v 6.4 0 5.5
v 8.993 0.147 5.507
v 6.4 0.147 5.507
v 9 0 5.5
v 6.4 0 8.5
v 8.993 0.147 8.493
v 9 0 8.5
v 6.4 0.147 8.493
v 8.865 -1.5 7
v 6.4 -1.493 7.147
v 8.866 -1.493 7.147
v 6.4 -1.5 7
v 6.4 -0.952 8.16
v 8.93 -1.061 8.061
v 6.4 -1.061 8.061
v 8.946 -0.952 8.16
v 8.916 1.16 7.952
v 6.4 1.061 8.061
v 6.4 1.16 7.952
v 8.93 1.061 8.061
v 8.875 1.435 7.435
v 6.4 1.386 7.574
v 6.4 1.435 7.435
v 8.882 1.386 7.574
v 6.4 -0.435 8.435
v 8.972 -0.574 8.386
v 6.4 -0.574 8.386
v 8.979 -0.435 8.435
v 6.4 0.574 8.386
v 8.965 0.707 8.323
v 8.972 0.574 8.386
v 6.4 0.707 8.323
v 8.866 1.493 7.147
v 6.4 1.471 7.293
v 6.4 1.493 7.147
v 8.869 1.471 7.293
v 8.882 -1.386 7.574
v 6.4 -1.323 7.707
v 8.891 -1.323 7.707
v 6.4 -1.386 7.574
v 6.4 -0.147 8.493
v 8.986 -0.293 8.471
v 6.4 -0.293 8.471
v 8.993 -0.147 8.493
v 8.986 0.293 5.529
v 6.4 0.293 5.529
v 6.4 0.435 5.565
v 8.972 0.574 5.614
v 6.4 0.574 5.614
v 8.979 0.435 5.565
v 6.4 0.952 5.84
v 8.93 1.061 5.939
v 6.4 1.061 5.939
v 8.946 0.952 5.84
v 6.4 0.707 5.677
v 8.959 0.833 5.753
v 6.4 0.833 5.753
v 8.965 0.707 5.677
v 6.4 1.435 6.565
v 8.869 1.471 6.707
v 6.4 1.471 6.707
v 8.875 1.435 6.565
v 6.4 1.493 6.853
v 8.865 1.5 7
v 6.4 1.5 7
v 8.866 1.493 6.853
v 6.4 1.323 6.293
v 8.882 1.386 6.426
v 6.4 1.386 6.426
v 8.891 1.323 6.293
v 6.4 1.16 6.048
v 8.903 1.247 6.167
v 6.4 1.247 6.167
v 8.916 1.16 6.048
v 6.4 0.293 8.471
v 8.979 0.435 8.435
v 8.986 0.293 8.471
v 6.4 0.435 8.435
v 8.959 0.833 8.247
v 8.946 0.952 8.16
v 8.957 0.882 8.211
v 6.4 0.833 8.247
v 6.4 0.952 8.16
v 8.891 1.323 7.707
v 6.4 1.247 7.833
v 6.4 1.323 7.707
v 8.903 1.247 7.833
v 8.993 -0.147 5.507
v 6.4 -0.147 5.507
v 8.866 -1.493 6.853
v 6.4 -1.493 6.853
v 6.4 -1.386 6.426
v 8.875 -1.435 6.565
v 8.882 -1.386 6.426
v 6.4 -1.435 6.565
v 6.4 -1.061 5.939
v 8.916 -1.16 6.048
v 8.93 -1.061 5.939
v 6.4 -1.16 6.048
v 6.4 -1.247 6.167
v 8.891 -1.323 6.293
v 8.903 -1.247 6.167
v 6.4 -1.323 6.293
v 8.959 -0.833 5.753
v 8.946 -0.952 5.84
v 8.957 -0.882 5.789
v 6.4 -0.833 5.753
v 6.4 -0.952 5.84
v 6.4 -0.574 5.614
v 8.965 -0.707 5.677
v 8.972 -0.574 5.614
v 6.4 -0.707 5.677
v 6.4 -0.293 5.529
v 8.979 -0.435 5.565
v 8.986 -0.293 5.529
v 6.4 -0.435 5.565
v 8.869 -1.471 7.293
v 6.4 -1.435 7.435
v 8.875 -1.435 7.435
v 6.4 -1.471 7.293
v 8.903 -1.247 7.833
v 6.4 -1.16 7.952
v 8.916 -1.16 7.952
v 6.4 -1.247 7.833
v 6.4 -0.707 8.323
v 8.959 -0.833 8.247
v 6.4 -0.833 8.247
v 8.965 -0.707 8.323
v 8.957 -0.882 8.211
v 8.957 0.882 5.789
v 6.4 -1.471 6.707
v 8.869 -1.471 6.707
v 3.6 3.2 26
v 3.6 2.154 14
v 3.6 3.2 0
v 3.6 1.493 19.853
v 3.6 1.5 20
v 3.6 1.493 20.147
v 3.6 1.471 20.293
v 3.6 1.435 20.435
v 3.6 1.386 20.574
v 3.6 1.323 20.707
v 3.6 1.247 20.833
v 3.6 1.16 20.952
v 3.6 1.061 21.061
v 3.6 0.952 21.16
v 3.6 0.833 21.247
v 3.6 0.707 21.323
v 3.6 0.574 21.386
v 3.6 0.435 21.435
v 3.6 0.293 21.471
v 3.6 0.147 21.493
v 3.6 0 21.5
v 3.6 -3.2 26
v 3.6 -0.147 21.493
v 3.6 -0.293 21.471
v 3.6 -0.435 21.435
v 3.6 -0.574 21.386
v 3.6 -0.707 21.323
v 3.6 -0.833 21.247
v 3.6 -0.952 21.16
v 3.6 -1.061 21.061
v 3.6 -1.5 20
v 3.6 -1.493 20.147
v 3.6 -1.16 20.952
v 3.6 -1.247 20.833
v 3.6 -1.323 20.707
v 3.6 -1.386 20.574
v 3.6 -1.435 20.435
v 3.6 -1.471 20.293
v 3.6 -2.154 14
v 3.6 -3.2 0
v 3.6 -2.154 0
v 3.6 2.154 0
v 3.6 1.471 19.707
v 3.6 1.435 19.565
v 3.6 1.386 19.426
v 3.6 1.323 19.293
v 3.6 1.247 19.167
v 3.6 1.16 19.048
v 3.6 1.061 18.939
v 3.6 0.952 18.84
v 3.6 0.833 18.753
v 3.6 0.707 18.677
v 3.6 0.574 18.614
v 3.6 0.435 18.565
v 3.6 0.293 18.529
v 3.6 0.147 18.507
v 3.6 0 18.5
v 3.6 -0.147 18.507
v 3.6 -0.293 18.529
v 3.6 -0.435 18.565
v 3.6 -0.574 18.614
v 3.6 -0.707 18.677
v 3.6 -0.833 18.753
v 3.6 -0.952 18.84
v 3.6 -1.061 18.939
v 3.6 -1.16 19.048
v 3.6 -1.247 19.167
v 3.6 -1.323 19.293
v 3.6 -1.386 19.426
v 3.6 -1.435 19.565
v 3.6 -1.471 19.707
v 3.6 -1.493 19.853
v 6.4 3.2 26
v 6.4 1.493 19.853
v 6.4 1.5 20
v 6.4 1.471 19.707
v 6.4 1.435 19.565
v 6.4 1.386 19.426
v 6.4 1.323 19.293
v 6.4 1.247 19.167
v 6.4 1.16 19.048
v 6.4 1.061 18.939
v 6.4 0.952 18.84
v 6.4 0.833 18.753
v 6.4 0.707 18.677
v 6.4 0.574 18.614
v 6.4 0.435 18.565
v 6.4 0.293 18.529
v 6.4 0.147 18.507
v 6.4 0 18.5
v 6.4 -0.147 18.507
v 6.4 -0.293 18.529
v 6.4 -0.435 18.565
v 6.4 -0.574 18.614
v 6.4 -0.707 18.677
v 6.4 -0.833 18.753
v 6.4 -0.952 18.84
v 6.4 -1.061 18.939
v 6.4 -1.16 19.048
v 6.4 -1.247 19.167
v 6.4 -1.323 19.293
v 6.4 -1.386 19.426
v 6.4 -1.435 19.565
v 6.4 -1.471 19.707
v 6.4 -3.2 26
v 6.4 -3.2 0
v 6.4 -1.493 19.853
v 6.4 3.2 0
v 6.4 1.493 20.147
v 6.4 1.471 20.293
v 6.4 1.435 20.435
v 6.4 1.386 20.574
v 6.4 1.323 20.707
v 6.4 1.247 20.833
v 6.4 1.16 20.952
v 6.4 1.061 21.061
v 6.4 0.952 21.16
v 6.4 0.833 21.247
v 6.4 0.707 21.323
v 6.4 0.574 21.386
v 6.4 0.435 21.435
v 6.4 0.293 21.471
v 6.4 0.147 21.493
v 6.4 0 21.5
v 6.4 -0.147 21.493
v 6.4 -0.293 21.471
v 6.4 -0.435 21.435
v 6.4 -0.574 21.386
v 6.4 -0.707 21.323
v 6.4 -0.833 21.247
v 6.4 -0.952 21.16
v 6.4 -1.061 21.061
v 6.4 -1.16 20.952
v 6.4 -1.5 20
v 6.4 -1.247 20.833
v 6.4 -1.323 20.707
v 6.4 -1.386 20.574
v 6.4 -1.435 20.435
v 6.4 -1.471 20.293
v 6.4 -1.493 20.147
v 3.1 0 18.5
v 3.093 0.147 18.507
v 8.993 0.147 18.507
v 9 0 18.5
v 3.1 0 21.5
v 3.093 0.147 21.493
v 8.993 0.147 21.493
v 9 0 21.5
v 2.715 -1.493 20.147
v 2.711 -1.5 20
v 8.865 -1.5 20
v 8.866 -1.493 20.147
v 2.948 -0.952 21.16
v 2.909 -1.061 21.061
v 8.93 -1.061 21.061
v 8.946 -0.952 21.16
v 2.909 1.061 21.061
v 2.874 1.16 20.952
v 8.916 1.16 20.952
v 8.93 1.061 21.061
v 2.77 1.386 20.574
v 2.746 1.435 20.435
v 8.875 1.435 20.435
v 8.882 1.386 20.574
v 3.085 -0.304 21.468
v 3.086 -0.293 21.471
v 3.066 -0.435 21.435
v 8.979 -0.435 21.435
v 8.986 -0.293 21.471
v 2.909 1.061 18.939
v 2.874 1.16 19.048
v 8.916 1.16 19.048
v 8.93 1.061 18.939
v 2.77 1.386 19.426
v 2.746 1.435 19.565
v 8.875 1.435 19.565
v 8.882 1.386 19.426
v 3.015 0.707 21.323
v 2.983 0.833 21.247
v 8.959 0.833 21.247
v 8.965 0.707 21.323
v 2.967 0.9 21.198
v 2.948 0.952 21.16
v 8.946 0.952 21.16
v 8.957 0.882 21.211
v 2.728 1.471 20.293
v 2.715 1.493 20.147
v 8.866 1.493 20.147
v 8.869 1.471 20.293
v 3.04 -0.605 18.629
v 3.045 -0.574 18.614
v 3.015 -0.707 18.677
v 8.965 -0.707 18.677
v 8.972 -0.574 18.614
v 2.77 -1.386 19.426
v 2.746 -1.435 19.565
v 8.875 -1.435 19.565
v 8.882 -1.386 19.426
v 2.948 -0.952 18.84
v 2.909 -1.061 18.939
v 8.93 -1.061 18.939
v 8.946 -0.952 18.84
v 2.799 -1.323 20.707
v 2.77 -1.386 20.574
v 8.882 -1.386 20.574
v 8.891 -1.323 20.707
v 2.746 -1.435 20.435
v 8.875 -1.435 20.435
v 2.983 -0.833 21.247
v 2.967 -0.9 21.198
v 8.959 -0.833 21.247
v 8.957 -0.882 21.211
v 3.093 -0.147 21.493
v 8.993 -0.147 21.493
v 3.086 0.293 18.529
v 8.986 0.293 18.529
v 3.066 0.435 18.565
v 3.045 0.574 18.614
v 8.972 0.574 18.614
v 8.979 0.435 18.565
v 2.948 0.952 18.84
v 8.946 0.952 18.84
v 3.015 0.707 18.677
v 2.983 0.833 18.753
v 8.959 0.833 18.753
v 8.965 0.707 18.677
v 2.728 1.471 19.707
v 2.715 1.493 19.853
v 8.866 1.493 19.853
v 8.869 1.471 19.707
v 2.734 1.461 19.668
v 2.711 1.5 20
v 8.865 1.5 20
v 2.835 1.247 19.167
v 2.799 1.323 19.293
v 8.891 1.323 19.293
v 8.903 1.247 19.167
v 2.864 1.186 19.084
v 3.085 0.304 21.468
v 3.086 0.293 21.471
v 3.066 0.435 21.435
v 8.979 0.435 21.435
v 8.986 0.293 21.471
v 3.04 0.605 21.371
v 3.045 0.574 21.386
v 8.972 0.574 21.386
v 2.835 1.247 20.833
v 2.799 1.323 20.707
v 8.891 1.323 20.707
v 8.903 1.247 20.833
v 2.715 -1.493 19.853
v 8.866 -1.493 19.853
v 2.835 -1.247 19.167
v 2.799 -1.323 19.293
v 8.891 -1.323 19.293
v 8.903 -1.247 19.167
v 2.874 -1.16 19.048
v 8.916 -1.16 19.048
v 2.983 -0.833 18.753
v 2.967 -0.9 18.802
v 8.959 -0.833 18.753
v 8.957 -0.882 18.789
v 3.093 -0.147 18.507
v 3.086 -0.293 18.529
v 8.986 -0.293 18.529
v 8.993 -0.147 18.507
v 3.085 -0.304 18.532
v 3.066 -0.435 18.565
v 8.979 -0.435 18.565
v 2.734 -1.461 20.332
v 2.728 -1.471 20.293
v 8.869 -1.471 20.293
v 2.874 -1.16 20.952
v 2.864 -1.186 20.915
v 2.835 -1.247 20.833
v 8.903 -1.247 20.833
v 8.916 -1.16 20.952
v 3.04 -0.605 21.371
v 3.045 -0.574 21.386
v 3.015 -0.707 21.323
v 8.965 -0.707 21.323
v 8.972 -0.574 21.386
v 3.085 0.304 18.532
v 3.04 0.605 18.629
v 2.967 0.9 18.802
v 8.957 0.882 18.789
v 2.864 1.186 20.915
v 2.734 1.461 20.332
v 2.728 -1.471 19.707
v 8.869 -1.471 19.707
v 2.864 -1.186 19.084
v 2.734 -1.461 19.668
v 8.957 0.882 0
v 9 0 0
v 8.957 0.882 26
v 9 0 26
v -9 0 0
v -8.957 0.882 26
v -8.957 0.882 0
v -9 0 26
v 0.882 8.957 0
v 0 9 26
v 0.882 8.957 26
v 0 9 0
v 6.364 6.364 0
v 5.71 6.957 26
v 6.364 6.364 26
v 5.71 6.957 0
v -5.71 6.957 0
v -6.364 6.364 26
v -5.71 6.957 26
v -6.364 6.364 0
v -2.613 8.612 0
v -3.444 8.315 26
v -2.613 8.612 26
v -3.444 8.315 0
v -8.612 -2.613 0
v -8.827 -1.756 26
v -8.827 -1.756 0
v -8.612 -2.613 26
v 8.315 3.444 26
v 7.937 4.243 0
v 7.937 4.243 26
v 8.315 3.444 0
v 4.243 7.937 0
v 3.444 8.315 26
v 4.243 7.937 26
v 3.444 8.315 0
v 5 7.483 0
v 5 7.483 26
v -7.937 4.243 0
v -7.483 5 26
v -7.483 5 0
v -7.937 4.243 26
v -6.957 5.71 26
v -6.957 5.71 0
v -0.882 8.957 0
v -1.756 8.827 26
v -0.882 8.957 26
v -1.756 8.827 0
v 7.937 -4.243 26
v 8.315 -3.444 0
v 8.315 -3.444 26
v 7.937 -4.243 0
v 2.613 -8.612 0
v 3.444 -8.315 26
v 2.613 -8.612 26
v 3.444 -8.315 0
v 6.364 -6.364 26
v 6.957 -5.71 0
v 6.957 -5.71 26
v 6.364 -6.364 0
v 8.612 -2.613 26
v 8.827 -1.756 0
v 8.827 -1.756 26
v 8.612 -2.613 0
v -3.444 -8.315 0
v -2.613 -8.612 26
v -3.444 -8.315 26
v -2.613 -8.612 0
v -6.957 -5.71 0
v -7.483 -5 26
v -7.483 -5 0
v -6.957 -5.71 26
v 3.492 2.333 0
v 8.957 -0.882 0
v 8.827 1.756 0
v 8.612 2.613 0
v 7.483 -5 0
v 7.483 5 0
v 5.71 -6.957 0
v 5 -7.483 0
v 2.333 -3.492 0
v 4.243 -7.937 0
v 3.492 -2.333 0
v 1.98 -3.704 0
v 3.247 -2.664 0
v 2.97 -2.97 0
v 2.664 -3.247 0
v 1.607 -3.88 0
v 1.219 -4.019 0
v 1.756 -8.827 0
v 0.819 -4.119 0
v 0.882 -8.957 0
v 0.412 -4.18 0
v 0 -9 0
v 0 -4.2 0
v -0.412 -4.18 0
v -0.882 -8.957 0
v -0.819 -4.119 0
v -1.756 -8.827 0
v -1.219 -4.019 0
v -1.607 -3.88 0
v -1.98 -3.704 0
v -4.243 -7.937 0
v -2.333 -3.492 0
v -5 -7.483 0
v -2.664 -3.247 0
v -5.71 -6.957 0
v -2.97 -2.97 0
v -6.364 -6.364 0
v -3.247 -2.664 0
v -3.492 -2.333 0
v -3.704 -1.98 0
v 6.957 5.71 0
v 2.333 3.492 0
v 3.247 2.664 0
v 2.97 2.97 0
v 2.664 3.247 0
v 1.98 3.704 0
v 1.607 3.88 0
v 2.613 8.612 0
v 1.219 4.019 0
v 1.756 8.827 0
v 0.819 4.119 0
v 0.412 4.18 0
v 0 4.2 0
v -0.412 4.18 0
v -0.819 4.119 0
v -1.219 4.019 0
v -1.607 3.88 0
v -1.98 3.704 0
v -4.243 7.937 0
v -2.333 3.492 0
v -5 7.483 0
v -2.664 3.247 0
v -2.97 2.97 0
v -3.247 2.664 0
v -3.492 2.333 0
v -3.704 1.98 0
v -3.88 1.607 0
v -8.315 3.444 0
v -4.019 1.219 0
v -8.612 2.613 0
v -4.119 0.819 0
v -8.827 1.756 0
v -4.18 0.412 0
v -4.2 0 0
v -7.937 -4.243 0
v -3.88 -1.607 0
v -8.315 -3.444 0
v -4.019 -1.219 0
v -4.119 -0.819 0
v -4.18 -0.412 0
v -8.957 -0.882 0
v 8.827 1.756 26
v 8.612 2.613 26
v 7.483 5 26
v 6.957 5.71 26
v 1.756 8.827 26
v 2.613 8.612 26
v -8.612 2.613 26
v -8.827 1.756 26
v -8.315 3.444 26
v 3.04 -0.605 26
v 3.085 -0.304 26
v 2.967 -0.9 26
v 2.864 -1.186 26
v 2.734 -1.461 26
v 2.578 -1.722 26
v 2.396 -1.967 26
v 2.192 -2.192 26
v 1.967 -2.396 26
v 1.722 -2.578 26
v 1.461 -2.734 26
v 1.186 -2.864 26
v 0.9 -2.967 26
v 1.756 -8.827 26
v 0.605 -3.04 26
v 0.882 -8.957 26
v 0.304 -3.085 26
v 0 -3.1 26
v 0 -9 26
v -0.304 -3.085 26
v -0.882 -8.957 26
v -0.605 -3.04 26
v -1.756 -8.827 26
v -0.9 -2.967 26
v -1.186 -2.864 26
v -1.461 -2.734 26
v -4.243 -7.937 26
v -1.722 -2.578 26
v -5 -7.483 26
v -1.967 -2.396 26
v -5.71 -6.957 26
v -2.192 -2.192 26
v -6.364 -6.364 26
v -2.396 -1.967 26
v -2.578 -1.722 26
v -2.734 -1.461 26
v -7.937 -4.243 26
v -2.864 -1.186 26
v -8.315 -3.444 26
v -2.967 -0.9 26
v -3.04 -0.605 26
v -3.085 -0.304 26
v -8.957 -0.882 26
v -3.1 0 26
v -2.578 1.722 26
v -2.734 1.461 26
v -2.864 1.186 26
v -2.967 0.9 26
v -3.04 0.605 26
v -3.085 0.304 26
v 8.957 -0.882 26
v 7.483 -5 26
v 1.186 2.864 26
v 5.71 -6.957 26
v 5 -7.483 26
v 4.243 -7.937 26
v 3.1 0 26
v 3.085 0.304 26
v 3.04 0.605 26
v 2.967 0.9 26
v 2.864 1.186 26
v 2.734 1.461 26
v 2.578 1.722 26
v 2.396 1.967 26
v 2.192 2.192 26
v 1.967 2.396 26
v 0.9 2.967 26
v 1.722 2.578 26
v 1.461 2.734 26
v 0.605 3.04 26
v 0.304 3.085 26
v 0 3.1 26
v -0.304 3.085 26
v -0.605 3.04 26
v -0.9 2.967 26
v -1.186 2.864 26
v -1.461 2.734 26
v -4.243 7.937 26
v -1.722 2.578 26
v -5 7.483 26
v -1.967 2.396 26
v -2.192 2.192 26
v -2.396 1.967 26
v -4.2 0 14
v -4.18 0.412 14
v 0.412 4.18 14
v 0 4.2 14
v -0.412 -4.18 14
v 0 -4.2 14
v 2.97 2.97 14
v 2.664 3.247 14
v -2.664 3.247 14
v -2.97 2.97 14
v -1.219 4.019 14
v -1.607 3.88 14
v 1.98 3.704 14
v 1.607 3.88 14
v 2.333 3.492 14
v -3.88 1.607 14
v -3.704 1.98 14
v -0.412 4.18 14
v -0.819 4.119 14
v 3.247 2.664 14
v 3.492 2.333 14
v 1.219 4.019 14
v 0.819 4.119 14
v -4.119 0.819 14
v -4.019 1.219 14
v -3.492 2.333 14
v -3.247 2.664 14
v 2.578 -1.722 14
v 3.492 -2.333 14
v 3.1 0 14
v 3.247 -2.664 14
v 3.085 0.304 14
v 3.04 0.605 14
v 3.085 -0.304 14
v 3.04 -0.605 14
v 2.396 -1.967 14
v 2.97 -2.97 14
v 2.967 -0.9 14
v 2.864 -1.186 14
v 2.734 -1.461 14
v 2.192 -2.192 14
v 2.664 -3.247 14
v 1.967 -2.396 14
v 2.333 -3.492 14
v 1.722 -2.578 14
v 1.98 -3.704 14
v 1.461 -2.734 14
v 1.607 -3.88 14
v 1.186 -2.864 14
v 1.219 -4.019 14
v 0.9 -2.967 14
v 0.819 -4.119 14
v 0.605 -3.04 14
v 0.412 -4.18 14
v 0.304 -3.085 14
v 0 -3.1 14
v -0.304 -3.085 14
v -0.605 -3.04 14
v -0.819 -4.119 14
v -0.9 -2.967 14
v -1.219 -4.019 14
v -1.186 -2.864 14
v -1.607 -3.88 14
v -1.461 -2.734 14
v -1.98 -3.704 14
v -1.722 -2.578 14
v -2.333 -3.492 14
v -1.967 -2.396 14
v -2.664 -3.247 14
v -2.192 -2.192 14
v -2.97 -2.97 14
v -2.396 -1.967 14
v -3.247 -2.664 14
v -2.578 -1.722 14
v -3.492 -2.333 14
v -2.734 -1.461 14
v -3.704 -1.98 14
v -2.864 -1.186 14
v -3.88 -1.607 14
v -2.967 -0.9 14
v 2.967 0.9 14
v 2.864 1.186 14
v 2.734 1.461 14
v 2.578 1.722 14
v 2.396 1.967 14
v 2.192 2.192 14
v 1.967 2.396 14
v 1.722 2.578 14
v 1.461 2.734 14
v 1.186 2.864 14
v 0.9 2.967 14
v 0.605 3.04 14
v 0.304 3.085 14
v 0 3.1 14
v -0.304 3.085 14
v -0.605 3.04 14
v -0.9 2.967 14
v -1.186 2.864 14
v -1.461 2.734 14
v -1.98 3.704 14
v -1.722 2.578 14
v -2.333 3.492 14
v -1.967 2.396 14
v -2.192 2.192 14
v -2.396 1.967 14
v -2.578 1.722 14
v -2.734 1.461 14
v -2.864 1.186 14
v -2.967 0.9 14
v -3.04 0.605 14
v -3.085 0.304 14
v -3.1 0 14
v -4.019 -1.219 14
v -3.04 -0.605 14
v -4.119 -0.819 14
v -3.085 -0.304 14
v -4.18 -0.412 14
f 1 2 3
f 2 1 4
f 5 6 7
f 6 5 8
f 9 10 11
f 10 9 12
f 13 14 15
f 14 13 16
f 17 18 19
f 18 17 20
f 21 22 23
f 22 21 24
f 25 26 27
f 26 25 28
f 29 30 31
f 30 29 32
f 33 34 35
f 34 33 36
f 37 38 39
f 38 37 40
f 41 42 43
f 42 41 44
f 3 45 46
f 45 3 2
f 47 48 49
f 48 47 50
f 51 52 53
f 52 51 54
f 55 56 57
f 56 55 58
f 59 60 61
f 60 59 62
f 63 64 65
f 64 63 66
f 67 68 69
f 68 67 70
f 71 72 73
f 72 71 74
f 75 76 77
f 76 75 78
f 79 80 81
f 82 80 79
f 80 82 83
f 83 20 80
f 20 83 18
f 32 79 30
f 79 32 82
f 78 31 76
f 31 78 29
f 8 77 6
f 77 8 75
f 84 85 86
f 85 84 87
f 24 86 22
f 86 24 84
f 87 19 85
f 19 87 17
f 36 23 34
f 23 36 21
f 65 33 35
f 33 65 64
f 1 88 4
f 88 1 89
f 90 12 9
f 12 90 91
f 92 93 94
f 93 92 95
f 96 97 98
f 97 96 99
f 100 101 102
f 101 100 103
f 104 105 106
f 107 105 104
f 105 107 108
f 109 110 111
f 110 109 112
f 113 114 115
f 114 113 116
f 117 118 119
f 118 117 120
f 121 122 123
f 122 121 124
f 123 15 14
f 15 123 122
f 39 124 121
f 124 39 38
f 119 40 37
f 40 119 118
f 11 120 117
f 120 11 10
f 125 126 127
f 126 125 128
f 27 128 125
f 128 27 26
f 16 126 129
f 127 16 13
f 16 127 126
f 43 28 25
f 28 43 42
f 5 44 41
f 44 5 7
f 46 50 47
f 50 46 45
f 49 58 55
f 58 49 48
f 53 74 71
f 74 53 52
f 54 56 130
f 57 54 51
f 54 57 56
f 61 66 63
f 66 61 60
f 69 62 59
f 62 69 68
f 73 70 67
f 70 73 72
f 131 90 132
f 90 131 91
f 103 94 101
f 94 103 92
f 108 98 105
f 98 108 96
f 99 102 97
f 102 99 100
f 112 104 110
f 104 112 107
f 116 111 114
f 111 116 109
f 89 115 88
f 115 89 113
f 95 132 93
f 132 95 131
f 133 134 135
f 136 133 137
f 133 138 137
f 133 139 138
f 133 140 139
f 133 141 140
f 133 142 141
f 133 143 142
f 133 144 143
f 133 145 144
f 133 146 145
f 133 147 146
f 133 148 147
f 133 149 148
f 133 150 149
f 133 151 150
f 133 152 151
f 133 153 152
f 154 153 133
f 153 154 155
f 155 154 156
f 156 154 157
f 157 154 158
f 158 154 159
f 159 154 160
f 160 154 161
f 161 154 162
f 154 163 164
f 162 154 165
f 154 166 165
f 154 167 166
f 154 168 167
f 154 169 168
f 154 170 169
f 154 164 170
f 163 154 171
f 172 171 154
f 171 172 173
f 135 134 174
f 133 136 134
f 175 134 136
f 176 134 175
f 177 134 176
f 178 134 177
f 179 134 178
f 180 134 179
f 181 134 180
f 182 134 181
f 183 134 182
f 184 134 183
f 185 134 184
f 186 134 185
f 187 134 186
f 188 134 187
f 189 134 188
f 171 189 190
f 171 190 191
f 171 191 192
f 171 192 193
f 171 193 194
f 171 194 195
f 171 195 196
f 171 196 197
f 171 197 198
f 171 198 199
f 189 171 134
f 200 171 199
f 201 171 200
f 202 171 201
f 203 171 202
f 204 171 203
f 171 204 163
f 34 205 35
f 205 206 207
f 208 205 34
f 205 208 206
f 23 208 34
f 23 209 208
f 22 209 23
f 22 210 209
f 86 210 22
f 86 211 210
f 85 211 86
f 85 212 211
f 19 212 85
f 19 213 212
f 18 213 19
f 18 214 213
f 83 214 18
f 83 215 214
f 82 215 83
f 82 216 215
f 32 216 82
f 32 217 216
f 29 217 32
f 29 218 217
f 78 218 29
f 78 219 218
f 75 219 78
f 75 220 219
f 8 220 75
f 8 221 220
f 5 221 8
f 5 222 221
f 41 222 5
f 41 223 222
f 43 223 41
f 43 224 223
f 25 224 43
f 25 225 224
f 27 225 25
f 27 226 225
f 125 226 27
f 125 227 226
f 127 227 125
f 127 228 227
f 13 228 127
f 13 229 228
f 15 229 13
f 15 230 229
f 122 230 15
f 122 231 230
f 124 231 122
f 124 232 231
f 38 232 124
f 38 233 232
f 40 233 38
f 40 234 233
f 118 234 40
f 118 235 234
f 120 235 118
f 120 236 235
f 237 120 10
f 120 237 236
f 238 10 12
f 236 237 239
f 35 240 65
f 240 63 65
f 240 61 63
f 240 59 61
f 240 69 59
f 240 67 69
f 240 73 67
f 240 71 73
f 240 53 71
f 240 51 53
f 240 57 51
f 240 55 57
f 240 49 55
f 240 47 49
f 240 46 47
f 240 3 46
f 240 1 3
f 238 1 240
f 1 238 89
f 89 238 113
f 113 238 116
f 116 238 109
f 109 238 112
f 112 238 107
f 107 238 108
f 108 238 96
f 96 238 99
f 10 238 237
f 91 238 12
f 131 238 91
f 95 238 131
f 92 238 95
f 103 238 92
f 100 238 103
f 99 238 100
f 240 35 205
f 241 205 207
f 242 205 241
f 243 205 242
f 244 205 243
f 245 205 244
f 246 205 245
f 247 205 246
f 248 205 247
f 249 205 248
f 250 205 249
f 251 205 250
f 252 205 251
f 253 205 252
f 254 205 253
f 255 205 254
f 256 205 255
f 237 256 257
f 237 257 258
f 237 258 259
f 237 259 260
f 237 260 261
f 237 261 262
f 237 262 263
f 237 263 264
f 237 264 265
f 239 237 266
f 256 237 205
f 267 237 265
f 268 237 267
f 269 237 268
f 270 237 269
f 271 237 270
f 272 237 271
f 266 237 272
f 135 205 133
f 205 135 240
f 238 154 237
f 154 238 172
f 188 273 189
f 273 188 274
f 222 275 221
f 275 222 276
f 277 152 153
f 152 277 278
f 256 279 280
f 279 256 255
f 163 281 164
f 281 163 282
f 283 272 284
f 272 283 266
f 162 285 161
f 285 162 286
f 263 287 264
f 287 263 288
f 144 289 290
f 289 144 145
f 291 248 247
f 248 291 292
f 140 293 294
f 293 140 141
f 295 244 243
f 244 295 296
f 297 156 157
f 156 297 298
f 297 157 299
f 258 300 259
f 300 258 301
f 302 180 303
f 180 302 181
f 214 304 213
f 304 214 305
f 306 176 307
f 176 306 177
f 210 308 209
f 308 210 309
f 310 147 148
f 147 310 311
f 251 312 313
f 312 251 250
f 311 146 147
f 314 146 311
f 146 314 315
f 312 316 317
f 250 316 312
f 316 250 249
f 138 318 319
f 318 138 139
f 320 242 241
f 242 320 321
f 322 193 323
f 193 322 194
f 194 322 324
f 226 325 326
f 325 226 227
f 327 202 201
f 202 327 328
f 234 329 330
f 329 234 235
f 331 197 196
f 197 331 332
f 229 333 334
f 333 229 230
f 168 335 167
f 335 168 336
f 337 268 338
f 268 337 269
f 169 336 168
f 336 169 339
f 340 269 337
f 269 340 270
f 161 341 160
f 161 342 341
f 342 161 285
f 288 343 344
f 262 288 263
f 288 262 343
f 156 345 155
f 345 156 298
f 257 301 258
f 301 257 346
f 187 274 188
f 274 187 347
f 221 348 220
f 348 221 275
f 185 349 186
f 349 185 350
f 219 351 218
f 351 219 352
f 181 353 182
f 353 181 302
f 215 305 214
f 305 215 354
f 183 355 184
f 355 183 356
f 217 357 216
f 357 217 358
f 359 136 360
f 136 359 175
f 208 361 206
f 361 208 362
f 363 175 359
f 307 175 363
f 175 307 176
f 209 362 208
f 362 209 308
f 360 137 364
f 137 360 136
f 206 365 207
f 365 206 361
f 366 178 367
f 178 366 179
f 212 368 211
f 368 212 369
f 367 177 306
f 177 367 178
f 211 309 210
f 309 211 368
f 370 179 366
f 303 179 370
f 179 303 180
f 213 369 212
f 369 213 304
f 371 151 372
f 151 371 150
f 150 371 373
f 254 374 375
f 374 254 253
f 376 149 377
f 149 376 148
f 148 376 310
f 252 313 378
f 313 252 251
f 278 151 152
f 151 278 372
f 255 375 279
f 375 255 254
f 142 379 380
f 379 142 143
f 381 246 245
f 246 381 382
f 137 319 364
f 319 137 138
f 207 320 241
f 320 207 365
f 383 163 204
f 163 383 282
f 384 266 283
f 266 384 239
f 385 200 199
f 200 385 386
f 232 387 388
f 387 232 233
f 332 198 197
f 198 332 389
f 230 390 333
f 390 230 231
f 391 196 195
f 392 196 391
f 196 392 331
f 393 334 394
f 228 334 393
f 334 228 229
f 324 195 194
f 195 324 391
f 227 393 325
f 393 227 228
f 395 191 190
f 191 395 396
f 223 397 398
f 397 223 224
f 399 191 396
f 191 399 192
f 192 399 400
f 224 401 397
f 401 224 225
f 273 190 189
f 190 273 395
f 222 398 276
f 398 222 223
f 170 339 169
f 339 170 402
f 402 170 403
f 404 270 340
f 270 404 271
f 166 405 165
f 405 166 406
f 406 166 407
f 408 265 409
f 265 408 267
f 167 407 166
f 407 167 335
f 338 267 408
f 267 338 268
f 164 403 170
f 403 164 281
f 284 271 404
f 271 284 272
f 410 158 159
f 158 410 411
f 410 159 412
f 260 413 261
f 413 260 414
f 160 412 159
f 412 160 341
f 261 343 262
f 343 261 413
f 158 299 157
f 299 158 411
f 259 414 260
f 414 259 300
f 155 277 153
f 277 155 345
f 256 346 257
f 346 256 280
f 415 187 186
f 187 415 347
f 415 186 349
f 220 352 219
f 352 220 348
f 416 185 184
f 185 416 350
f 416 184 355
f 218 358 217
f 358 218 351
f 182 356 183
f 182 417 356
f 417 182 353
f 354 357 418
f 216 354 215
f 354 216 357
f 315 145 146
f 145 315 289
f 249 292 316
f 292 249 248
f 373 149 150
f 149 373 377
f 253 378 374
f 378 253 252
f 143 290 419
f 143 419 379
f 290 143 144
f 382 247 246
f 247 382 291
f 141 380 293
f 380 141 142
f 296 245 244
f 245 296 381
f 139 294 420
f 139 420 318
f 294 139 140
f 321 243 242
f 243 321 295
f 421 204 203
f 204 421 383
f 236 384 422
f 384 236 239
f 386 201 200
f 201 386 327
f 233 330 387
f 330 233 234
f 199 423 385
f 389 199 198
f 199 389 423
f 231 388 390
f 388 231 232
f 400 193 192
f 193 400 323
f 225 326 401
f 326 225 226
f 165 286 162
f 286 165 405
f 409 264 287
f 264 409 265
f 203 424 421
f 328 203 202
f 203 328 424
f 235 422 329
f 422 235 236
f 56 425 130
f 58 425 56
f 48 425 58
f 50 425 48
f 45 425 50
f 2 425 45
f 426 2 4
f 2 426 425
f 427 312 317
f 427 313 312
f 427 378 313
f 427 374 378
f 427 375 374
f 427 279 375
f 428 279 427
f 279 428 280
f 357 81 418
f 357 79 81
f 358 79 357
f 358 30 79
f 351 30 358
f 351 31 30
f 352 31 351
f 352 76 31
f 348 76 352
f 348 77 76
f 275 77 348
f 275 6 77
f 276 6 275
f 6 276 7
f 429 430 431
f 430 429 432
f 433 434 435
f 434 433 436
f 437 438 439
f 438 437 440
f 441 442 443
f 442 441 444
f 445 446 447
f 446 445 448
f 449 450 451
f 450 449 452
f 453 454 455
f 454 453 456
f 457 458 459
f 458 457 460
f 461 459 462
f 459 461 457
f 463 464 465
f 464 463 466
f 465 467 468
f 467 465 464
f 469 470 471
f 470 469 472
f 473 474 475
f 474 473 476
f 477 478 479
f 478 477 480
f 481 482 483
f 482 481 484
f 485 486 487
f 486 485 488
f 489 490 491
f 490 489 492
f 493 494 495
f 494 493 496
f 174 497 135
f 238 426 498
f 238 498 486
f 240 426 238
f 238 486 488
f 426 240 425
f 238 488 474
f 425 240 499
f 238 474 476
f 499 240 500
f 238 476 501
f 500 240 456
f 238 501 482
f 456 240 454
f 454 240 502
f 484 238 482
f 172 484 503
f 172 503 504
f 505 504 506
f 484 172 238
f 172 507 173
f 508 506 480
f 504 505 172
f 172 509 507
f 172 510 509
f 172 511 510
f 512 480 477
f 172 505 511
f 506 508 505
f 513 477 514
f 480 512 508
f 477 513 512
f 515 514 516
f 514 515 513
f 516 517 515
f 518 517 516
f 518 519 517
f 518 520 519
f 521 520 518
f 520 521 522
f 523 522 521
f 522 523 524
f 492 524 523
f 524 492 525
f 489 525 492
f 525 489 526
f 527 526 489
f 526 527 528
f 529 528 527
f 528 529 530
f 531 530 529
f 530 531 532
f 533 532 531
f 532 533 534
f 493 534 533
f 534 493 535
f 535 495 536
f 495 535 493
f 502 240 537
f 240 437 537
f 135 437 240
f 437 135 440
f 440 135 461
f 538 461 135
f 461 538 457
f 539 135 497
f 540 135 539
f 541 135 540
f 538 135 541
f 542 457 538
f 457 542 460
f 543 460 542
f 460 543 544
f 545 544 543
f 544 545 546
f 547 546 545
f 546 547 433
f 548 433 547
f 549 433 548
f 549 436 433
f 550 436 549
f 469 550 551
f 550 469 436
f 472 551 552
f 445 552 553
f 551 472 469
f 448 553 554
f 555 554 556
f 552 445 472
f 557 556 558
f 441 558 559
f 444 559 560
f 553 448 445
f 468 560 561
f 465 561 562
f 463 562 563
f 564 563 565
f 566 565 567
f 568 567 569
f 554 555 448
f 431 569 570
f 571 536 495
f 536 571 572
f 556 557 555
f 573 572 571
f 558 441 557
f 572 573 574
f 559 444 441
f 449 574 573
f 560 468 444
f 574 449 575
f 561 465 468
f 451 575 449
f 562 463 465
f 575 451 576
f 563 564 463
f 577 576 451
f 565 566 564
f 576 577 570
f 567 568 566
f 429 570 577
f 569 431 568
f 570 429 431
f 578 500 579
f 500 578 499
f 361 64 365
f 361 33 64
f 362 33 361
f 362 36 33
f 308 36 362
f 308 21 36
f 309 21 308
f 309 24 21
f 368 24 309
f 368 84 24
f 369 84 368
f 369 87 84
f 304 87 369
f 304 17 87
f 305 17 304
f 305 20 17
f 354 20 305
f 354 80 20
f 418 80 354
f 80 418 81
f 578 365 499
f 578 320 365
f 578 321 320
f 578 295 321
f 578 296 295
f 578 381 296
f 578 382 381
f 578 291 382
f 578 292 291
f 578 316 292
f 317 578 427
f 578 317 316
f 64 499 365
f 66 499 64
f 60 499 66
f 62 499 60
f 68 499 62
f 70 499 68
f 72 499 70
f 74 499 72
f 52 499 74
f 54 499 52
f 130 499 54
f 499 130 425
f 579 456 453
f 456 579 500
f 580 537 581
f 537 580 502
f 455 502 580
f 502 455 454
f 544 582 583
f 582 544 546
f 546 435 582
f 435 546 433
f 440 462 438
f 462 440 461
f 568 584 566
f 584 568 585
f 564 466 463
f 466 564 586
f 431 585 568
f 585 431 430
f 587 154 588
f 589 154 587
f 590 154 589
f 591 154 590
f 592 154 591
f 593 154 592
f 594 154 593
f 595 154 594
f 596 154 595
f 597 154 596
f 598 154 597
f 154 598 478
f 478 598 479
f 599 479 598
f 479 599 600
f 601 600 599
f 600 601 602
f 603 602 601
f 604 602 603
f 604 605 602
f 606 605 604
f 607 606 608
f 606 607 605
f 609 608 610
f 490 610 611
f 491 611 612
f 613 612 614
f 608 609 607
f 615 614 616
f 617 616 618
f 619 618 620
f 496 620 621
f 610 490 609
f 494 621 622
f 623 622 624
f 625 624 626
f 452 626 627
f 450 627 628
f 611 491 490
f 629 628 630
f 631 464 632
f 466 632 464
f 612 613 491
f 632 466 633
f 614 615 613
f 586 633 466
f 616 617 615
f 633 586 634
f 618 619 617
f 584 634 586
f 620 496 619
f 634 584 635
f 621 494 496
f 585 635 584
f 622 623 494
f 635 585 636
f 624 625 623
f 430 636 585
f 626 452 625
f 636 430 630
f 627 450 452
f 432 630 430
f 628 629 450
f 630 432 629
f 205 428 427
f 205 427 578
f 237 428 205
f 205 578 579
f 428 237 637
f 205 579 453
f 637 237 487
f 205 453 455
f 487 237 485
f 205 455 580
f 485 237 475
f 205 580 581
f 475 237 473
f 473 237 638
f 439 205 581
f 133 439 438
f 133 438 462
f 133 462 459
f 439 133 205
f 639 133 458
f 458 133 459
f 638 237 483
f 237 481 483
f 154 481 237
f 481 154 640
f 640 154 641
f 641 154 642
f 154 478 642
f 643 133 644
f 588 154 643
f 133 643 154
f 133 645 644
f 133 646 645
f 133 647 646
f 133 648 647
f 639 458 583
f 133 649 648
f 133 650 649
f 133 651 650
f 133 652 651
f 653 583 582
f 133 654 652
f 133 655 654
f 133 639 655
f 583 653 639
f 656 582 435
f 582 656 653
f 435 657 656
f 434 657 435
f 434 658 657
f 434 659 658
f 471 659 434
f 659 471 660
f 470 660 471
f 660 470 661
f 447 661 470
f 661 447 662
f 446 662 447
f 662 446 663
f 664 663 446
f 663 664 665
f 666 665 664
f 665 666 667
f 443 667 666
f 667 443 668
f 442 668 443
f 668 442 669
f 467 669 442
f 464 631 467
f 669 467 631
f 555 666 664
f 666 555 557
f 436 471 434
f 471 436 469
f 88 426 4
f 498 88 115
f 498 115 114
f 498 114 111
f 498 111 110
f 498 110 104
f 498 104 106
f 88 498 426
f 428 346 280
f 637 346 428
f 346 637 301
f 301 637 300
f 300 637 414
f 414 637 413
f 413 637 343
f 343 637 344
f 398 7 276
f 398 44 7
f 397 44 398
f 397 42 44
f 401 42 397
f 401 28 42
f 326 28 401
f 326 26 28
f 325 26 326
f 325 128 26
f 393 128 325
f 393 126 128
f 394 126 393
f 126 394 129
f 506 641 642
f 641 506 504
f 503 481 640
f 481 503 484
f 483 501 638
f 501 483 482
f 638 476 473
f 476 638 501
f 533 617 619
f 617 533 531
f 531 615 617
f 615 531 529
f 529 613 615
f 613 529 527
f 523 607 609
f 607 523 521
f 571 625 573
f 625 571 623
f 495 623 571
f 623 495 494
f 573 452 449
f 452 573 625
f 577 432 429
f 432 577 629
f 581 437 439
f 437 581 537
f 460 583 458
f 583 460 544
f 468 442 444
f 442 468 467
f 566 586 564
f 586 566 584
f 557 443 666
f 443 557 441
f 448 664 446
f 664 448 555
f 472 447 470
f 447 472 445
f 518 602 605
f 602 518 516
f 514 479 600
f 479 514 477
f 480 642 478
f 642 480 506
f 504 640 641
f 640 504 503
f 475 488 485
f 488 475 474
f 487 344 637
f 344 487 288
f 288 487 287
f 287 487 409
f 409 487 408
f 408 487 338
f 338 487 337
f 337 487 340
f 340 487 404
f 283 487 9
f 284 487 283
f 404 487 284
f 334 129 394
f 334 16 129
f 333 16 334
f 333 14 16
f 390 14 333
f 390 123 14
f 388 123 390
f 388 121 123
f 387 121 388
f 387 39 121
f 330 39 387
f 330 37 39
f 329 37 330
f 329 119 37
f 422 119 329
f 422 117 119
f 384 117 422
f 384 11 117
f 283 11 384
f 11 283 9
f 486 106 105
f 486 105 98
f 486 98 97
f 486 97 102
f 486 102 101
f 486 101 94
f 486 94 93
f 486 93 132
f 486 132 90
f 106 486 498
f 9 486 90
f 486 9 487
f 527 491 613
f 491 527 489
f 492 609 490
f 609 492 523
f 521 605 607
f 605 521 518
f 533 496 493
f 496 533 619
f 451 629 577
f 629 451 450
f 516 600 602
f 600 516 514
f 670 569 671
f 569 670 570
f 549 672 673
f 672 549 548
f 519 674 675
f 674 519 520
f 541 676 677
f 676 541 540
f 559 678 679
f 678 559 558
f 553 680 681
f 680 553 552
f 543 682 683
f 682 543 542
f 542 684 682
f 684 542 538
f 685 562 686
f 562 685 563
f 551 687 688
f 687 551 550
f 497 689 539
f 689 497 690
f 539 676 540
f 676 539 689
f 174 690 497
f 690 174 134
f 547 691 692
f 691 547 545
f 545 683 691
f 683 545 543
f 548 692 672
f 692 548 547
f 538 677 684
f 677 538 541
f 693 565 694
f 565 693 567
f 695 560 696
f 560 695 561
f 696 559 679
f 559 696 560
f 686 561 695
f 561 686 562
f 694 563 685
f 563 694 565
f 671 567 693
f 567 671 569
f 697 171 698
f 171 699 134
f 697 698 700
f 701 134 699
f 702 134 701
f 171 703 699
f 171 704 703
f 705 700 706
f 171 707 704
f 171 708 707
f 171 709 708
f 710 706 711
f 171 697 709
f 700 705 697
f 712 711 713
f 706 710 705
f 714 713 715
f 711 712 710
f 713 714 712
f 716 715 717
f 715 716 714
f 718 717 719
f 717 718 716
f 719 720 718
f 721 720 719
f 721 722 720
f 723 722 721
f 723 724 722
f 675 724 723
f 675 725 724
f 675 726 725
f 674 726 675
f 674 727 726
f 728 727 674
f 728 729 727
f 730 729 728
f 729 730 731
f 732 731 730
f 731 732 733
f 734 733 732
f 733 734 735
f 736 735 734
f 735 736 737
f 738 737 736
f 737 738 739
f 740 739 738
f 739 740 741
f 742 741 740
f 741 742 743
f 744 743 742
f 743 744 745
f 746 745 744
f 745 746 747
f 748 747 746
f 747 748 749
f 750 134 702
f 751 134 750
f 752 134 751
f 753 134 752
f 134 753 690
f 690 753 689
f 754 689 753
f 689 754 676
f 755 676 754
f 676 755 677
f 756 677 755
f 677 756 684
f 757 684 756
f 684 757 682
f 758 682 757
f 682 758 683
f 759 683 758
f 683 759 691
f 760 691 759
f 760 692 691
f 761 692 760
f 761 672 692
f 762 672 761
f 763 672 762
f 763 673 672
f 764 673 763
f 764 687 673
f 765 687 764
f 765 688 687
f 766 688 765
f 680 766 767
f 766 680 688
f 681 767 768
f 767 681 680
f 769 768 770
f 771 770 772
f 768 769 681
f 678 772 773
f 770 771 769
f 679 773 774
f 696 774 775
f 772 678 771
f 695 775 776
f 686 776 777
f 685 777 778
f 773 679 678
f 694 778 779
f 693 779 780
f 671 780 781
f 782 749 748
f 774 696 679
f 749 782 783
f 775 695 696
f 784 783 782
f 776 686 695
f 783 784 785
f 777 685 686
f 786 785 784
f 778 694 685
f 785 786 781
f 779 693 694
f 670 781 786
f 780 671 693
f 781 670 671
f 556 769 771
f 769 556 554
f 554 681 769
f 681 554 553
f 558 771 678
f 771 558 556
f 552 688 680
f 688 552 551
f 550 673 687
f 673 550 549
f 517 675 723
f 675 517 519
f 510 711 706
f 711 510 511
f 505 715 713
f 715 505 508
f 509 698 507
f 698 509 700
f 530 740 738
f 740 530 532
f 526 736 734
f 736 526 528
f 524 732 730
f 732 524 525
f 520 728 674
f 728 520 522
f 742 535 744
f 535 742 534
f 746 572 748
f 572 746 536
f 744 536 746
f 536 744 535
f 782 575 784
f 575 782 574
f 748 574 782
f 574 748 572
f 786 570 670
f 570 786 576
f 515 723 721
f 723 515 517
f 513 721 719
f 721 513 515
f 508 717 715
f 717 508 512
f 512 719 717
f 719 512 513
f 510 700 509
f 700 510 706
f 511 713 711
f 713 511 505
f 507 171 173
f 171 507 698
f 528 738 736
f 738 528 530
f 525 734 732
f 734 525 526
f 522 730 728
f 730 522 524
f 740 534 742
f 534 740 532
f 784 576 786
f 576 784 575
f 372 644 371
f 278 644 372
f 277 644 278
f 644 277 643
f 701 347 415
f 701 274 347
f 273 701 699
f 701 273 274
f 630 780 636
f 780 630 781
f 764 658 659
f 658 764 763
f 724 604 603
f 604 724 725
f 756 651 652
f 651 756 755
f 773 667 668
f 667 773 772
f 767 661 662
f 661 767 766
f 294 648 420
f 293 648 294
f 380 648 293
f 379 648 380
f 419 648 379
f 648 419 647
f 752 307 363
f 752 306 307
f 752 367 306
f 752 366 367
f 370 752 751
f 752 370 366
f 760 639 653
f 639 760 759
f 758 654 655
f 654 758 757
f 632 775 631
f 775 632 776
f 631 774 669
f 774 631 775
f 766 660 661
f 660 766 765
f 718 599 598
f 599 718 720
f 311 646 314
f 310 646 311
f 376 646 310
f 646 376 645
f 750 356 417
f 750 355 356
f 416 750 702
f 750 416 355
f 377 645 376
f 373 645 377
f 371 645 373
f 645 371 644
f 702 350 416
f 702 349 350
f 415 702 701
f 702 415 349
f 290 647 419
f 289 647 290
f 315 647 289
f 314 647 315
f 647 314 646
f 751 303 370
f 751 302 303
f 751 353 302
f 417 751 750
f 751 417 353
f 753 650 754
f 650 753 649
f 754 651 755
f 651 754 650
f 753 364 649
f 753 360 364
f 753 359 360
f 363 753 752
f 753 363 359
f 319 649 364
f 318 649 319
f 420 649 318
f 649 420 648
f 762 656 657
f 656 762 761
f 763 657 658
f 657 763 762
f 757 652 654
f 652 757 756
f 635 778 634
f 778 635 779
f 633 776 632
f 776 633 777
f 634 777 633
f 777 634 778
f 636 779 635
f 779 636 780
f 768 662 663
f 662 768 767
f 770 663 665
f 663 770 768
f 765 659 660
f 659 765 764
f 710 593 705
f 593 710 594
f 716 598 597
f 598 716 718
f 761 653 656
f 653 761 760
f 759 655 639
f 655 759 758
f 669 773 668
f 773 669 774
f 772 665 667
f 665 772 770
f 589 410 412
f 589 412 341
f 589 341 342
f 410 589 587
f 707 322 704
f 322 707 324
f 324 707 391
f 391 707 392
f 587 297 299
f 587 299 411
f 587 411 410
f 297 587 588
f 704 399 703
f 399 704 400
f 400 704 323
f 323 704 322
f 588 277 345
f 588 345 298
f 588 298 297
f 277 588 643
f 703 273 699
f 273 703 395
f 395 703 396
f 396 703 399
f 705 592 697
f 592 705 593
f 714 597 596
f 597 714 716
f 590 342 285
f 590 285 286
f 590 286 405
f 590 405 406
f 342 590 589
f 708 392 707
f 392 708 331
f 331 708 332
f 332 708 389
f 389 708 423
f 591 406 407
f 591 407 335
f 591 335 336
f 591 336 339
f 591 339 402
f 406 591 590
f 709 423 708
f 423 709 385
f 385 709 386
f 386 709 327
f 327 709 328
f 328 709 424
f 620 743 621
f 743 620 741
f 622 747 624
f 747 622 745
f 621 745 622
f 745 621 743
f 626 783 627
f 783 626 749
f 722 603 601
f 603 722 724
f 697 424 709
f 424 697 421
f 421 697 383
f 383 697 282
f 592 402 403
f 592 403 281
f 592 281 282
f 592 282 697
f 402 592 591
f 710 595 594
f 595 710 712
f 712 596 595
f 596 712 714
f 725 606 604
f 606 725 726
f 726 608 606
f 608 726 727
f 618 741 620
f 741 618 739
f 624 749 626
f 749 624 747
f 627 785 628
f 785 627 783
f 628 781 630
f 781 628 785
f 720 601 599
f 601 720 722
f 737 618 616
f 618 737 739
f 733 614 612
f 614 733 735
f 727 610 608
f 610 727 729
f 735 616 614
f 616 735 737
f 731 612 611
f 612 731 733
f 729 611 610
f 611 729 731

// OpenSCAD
// file: common.scad
// common.scad -- shared dimensions for the seesaw-rig parts (millimetres).
// Drone-control bootcamp, CC BY 4.0. Measure your own parts and adjust.

beam_w      = 20.0;   // square aluminium tube (or pine strip), outer size
fit         = 0.4;    // printing clearance for sliding fits
bearing_od  = 22.0;   // 608 bearing
bearing_w   = 7.0;
axle_d      = 8.0;    // M8 threaded rod or 8 mm steel rod
pot_shaft_d = 6.0;    // common B10K pot (WH148): 6 mm shaft
pot_bush_d  = 7.0;    // threaded bushing (M7)
m3          = 3.4;    // M3 clearance hole
m3_nut      = 6.4;    // M3 nut across flats (+ clearance)
wall        = 3.0;

$fn = 64;

// rounded rectangle plate, centred in x/y, sitting on z = 0
module plate(x, y, h, r = 3) {
  hull()
    for (sx = [-1, 1], sy = [-1, 1])
      translate([sx * (x / 2 - r), sy * (y / 2 - r), 0]) cylinder(r = r, h = h);
}
// main file
// pot_coupler.scad -- couples the 8 mm axle to the 6 mm pot shaft, so the pot reads
// the beam angle. Two M3 set screws (with nut traps) on each side. A short piece of
// silicone tube works too, but slips under load; this does not.
include <common.scad>

len_axle = 14;
len_pot  = 12;
od       = 18;

difference() {
  cylinder(d = od, h = len_axle + len_pot);
  translate([0, 0, -1]) cylinder(d = axle_d + fit, h = len_axle + 1);
  translate([0, 0, len_axle - 0.01]) cylinder(d = pot_shaft_d + fit / 2, h = len_pot + 1);
  for (z = [len_axle / 2, len_axle + len_pot / 2]) {
    // radial set-screw hole
    translate([0, 0, z]) rotate([0, 90, 0]) cylinder(d = m3 - 0.4, h = od);
    // nut trap, slot from the top of each section
    translate([od / 4 + 0.5, 0, z]) cube([2.8, m3_nut, 30], center = true);
  }
}
